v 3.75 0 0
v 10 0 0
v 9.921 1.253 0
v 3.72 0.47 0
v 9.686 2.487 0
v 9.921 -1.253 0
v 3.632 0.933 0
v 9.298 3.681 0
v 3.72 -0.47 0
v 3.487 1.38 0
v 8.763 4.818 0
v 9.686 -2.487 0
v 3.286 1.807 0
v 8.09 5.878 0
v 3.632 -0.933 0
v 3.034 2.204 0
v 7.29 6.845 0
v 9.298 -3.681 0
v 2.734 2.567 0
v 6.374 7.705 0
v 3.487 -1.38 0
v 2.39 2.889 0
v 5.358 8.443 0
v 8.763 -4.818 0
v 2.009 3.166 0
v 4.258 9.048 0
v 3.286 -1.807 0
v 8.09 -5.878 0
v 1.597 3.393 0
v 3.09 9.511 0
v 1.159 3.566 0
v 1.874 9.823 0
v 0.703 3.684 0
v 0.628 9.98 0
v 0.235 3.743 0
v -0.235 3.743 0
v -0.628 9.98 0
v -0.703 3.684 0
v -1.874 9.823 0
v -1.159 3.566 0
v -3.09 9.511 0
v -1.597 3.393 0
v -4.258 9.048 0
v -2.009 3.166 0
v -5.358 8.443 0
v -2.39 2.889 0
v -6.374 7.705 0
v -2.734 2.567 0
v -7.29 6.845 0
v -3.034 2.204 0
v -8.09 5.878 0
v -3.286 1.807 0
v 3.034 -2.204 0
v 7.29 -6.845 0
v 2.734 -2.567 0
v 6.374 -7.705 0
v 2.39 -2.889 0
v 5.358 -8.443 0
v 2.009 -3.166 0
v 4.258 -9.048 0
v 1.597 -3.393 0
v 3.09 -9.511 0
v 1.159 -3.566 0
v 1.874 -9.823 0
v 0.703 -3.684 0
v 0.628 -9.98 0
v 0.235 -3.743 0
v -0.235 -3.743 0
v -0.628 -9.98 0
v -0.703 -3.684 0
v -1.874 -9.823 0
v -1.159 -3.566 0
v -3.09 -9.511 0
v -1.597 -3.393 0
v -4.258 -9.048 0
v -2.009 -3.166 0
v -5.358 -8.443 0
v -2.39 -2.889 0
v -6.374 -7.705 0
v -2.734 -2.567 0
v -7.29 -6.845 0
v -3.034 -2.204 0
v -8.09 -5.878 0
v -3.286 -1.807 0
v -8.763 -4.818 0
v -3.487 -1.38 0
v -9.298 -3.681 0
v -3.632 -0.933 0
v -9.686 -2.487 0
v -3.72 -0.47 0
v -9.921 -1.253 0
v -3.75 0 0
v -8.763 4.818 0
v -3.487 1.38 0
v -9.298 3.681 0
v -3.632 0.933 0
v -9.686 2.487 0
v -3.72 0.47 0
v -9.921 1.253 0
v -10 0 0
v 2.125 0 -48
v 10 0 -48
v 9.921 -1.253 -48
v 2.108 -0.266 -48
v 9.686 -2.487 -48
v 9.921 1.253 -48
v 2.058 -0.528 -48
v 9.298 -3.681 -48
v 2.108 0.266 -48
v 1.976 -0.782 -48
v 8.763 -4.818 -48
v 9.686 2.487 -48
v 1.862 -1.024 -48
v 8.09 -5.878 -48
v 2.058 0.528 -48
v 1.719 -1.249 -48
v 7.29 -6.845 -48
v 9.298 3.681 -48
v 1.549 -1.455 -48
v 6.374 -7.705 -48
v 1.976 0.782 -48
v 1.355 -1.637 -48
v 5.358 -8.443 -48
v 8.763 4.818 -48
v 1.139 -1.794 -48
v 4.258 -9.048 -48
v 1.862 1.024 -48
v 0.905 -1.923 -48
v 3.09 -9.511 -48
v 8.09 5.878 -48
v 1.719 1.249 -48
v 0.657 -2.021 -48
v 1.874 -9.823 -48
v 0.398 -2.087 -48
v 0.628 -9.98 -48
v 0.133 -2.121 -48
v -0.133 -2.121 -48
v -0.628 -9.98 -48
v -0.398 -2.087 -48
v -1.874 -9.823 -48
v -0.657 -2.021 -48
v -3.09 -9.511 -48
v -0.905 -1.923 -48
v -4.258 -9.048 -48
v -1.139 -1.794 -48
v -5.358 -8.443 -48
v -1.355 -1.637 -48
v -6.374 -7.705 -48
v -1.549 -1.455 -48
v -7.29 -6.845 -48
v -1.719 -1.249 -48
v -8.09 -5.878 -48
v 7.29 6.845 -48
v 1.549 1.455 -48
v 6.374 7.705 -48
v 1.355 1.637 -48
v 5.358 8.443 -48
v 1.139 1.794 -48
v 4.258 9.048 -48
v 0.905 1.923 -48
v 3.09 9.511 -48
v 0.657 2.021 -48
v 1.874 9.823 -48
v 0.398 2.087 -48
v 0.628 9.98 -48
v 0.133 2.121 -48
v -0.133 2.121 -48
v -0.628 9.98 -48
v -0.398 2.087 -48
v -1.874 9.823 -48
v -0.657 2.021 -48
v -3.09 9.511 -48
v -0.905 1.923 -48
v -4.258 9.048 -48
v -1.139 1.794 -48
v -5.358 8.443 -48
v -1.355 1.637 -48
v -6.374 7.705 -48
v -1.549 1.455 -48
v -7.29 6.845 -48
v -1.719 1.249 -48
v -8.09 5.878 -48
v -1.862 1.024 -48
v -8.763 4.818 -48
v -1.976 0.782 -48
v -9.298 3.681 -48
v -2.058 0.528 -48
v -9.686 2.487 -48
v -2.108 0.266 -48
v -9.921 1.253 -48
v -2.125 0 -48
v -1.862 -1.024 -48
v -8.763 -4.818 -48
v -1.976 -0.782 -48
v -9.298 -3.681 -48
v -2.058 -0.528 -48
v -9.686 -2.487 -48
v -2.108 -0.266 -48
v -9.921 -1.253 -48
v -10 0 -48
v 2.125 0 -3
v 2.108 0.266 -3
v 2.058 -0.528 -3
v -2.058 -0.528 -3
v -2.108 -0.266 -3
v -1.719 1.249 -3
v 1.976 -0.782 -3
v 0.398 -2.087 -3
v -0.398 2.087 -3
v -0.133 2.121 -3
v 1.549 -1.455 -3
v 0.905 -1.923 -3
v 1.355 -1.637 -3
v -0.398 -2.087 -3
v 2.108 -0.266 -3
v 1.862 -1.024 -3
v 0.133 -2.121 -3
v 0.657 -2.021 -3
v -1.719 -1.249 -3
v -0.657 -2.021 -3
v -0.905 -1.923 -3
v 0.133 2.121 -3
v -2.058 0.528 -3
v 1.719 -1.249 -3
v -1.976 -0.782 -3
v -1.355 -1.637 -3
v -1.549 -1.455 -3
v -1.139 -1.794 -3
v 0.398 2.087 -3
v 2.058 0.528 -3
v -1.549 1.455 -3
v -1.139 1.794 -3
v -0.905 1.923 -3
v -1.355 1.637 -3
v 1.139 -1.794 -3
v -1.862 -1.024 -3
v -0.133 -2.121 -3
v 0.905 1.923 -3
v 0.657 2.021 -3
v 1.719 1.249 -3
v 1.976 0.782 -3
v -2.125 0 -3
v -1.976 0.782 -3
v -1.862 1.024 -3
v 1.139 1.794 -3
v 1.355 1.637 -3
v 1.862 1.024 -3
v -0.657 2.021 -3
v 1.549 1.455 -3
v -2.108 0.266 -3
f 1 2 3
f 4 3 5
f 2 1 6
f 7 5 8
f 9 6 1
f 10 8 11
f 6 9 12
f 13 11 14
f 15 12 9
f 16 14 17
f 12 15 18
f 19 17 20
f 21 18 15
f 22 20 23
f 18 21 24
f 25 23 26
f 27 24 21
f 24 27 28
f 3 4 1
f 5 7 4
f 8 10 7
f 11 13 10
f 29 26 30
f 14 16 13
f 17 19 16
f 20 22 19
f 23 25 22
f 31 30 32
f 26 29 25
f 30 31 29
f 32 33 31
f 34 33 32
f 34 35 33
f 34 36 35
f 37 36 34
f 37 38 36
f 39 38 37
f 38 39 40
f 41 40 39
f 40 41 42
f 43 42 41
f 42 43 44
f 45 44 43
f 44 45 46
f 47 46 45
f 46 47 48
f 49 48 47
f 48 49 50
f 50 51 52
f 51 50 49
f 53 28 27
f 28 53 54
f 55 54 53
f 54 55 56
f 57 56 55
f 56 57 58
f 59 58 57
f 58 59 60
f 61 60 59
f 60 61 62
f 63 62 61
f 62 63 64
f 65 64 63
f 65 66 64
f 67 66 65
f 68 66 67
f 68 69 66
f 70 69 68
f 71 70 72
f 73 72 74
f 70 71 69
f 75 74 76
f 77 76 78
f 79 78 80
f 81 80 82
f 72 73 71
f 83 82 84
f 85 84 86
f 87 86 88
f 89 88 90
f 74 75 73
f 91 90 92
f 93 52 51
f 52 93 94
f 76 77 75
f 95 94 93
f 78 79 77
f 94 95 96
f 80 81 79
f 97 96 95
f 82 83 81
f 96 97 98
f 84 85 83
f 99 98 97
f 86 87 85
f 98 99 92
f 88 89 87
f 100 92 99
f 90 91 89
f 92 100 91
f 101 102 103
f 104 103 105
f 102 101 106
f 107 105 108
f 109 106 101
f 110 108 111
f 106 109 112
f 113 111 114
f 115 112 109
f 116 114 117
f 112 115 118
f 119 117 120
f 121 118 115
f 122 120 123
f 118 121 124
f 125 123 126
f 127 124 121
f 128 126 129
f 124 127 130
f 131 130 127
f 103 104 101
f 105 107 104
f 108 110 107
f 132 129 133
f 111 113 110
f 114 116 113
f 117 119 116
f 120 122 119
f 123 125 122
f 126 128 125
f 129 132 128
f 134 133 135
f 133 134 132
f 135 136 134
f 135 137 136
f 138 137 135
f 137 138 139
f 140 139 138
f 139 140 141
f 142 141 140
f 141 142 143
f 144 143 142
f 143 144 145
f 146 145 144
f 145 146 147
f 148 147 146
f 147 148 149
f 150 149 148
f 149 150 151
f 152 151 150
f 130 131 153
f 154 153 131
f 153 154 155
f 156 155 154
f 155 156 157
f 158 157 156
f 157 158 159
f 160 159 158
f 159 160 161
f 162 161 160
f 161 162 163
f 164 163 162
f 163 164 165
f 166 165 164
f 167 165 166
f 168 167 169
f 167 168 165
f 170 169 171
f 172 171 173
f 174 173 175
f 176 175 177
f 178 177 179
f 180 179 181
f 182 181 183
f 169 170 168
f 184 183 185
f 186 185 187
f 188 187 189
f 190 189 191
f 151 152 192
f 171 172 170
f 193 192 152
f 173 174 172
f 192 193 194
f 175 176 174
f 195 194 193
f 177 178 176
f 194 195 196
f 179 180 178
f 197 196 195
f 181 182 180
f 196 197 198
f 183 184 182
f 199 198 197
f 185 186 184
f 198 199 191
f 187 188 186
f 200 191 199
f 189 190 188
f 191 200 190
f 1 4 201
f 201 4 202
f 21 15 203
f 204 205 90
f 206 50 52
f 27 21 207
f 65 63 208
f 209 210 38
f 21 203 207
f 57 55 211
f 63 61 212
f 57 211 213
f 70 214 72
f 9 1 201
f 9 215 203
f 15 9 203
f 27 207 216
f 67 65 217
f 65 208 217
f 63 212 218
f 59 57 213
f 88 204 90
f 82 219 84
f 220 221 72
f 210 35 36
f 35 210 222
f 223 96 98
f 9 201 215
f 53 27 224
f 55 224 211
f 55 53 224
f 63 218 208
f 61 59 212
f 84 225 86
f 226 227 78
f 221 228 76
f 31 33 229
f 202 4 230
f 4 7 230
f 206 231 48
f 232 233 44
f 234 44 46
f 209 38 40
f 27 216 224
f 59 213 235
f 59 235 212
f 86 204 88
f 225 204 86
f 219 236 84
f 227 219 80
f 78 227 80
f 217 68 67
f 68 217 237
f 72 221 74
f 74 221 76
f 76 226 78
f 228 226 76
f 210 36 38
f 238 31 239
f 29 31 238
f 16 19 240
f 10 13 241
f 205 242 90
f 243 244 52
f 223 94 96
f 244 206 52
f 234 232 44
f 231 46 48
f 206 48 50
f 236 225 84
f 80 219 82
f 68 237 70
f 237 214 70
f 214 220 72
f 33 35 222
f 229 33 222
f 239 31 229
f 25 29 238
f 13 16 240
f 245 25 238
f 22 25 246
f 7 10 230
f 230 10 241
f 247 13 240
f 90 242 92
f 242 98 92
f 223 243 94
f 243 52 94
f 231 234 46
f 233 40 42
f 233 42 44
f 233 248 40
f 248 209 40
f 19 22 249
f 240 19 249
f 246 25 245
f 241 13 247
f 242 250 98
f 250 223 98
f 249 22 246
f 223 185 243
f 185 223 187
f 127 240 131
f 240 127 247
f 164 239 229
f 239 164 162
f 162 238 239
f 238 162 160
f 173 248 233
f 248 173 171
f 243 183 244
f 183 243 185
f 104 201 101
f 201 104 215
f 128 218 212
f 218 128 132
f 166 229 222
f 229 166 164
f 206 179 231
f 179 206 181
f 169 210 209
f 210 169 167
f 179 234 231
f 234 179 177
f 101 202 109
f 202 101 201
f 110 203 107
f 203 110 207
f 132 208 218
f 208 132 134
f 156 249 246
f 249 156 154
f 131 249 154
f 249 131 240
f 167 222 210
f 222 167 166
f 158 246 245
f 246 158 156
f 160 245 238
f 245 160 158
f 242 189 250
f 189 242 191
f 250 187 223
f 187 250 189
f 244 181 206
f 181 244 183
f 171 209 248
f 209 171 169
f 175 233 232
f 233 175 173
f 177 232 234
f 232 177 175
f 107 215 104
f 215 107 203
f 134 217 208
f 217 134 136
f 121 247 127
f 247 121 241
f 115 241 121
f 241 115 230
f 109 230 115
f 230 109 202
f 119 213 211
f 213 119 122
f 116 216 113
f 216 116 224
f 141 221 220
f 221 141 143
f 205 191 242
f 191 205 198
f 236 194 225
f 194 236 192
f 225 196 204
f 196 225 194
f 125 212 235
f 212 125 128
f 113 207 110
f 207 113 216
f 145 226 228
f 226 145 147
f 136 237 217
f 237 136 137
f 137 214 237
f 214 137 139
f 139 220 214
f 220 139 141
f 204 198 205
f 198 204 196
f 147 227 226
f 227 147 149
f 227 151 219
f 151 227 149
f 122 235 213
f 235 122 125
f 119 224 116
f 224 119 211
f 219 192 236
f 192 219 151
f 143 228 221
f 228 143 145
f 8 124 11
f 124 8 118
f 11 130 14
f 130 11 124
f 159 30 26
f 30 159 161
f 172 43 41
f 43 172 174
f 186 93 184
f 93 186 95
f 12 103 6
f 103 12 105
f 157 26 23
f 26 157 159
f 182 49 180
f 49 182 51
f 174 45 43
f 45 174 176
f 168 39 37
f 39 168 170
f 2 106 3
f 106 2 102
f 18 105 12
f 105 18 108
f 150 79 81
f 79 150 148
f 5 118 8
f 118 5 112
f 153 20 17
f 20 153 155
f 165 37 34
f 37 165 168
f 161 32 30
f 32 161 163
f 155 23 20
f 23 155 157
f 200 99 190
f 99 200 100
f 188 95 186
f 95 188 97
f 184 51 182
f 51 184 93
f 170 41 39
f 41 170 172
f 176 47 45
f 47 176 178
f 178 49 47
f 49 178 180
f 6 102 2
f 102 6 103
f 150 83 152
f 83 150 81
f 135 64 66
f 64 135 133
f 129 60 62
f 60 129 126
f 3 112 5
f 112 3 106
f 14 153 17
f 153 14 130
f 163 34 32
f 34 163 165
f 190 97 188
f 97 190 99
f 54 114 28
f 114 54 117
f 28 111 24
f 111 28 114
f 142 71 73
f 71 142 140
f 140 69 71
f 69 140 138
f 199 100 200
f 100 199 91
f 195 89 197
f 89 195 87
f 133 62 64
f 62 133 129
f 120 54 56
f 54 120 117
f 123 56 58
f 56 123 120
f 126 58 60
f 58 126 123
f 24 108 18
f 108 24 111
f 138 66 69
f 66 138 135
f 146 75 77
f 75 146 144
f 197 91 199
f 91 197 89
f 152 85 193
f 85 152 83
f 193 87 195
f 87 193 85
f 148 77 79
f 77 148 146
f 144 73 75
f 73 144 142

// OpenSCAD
$fn = 50;


difference() {
	union() {
		translate(v = [0, 0, -48.0000000000]) {
			cylinder(h = 48, r = 10.0000000000);
		}
		cylinder(h = 0, r = 19.0000000000);
	}
	union() {
		translate(v = [0, 0, 0]) {
			rotate(a = [0, 0, 0]) {
				difference() {
					union() {
						#translate(v = [0, 0, -48.0000000000]) {
							cylinder(h = 48, r = 2.0000000000);
						}
						#translate(v = [0, 0, -3]) {
							cylinder(h = 3, r = 10.0000000000, r1 = 2.1250000000, r2 = 3.7500000000);
						}
						#translate(v = [0, 0, -48.0000000000]) {
							cylinder(h = 48, r = 2.1250000000);
						}
						#translate(v = [0, 0, -48.0000000000]) {
							cylinder(h = 48, r = 2.0000000000);
						}
					}
					union();
				}
			}
		}
	}
}
